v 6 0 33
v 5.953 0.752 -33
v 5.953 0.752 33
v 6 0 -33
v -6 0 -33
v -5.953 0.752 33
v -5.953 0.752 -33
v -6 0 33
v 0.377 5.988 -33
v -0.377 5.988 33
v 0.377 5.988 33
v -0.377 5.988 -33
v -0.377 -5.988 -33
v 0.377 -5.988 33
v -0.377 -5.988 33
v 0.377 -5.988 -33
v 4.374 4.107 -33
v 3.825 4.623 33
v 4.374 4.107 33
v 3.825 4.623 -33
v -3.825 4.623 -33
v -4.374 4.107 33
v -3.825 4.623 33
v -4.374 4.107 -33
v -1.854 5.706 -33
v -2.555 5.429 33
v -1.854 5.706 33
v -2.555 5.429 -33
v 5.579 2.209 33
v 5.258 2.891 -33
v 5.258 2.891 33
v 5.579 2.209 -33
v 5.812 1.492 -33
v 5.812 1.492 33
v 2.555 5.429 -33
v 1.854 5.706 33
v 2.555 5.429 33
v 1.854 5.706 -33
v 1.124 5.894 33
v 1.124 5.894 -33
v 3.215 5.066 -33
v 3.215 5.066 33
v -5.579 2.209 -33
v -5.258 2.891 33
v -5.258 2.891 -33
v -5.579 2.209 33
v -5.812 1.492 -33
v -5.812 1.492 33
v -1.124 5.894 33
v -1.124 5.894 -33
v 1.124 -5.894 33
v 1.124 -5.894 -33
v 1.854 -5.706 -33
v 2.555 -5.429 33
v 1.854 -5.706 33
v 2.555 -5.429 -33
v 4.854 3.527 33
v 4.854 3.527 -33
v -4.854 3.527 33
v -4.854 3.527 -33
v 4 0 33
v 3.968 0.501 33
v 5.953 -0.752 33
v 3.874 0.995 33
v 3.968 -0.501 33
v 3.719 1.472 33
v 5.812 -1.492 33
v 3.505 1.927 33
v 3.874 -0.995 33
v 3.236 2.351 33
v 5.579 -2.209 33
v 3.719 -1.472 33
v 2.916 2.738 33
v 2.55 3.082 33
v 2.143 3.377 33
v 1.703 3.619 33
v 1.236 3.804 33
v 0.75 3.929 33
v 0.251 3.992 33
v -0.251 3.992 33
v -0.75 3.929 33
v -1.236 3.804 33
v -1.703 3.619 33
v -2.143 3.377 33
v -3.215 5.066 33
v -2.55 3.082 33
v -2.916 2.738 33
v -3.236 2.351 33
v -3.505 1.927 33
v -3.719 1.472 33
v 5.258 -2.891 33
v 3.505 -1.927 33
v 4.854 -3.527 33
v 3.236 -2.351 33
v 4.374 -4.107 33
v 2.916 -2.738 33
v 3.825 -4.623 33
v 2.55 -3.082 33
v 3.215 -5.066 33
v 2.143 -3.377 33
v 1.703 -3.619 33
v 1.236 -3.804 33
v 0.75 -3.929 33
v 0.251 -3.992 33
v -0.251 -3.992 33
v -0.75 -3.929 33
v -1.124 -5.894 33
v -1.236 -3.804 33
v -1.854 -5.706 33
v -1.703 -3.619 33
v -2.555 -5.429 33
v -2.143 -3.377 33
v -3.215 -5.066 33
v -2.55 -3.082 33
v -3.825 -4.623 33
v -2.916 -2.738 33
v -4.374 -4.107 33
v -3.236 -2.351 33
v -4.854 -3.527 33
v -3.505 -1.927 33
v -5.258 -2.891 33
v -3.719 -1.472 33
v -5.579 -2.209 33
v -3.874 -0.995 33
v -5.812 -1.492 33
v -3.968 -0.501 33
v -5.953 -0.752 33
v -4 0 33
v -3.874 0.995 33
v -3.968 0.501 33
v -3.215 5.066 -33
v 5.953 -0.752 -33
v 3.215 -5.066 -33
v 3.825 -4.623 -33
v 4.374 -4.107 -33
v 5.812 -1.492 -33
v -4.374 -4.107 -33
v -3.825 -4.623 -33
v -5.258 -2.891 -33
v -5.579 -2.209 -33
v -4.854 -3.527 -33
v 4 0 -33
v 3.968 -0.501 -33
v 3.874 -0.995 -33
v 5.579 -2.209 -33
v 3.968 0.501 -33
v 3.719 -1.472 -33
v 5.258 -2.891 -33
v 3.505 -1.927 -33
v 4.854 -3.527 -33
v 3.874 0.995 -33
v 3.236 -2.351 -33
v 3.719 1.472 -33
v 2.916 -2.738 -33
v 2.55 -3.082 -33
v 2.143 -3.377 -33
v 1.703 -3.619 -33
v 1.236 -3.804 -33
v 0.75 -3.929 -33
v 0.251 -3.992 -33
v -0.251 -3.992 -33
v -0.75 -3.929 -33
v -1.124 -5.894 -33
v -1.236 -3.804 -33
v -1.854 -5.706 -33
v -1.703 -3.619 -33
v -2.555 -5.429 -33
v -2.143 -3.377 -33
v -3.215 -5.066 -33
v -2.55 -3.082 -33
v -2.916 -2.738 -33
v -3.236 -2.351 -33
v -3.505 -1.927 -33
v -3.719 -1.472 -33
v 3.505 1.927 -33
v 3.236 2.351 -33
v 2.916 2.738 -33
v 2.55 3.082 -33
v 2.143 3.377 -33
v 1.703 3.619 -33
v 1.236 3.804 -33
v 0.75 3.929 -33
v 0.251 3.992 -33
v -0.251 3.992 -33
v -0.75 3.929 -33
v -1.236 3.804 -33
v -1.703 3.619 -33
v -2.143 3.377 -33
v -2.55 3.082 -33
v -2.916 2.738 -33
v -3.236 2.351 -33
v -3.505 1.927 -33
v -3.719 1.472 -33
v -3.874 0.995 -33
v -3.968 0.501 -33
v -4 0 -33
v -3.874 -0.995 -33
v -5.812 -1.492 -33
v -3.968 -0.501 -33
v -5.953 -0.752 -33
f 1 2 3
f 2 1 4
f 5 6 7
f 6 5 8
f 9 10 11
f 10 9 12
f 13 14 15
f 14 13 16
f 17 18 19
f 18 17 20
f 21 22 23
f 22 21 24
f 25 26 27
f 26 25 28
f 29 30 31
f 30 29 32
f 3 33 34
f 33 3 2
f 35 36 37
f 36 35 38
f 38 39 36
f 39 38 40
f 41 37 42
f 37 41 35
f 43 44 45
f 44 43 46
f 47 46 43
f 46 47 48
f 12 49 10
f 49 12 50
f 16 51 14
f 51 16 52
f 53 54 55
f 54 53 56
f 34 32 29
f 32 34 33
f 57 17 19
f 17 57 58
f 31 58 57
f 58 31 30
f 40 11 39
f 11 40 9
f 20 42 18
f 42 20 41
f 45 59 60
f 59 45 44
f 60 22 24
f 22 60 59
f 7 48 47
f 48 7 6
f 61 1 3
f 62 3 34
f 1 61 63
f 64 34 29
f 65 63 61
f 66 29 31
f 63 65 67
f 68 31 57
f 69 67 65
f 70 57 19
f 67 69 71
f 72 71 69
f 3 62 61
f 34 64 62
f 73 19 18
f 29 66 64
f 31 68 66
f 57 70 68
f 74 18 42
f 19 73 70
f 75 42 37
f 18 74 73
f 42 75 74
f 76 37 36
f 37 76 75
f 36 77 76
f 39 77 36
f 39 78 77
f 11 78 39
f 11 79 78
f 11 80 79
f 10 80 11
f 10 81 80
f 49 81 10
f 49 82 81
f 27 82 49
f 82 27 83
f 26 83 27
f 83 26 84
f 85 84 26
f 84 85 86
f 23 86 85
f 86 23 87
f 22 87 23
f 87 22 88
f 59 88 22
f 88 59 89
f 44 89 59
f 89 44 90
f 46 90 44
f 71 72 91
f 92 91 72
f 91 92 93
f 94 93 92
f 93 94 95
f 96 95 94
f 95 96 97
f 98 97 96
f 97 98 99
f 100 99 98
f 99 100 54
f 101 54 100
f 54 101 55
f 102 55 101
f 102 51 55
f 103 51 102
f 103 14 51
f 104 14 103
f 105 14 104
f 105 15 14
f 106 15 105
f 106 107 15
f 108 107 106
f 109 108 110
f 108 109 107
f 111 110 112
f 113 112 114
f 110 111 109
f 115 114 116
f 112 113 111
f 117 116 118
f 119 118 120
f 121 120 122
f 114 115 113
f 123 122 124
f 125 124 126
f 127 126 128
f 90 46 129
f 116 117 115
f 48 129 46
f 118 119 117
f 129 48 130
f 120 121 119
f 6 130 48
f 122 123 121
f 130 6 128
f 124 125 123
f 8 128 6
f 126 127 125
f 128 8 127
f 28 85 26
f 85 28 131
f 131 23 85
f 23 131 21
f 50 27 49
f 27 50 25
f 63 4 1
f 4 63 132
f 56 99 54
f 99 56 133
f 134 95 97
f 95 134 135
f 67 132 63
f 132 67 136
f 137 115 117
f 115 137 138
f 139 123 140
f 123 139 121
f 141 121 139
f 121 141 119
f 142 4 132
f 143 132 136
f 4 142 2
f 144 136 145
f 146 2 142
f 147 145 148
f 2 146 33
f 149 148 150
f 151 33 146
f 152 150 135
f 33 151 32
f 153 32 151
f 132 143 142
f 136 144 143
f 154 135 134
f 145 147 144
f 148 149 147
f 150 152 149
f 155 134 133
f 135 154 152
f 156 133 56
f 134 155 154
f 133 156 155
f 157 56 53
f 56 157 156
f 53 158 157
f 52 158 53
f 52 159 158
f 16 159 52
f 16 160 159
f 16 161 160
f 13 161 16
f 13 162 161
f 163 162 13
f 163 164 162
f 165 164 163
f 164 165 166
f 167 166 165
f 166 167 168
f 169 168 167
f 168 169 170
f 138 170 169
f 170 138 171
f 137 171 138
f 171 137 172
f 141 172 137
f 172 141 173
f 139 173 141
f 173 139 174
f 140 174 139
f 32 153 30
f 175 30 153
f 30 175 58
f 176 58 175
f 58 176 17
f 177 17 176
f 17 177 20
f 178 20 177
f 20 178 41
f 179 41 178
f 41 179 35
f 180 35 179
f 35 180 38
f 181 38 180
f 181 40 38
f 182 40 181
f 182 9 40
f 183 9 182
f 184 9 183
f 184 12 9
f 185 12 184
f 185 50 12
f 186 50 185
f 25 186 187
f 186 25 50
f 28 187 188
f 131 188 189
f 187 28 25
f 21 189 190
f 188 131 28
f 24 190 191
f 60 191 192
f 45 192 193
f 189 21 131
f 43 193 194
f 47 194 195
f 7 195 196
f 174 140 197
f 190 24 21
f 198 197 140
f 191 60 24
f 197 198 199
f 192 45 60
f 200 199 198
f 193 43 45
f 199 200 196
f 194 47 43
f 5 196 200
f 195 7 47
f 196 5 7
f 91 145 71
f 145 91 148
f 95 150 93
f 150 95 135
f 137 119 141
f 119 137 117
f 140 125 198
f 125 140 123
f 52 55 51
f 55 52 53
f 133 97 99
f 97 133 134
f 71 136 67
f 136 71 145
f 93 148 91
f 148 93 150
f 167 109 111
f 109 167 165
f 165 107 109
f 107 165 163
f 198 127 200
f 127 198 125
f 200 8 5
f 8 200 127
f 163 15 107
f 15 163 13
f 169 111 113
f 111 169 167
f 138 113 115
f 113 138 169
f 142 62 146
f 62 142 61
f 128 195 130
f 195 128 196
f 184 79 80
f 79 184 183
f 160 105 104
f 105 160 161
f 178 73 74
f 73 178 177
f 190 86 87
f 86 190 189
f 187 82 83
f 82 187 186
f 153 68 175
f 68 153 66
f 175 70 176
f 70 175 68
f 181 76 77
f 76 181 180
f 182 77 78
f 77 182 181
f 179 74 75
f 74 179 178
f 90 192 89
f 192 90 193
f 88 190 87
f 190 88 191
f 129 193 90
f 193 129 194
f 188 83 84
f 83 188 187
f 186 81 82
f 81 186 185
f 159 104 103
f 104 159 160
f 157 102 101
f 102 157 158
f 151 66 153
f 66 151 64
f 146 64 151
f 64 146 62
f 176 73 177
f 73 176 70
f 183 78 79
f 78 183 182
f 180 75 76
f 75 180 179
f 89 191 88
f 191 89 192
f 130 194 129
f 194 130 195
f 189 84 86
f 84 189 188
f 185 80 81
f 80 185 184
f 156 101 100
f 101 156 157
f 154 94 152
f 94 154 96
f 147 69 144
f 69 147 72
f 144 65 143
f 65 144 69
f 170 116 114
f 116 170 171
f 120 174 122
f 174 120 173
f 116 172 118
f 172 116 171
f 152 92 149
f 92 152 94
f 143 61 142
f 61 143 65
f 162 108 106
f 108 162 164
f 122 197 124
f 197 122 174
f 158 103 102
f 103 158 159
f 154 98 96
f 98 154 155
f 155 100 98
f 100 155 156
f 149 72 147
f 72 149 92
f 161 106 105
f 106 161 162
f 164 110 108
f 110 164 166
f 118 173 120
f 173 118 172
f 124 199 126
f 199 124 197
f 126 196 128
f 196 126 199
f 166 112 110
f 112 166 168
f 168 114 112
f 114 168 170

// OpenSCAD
$fn = 50;


difference() {
	union() {
		translate(v = [0, 0, -33.0000000000]) {
			cylinder(h = 66, r = 6.0000000000);
		}
	}
	union() {
		translate(v = [0, 0, -100.0000000000]) {
			cylinder(h = 200, r = 4);
		}
	}
}
